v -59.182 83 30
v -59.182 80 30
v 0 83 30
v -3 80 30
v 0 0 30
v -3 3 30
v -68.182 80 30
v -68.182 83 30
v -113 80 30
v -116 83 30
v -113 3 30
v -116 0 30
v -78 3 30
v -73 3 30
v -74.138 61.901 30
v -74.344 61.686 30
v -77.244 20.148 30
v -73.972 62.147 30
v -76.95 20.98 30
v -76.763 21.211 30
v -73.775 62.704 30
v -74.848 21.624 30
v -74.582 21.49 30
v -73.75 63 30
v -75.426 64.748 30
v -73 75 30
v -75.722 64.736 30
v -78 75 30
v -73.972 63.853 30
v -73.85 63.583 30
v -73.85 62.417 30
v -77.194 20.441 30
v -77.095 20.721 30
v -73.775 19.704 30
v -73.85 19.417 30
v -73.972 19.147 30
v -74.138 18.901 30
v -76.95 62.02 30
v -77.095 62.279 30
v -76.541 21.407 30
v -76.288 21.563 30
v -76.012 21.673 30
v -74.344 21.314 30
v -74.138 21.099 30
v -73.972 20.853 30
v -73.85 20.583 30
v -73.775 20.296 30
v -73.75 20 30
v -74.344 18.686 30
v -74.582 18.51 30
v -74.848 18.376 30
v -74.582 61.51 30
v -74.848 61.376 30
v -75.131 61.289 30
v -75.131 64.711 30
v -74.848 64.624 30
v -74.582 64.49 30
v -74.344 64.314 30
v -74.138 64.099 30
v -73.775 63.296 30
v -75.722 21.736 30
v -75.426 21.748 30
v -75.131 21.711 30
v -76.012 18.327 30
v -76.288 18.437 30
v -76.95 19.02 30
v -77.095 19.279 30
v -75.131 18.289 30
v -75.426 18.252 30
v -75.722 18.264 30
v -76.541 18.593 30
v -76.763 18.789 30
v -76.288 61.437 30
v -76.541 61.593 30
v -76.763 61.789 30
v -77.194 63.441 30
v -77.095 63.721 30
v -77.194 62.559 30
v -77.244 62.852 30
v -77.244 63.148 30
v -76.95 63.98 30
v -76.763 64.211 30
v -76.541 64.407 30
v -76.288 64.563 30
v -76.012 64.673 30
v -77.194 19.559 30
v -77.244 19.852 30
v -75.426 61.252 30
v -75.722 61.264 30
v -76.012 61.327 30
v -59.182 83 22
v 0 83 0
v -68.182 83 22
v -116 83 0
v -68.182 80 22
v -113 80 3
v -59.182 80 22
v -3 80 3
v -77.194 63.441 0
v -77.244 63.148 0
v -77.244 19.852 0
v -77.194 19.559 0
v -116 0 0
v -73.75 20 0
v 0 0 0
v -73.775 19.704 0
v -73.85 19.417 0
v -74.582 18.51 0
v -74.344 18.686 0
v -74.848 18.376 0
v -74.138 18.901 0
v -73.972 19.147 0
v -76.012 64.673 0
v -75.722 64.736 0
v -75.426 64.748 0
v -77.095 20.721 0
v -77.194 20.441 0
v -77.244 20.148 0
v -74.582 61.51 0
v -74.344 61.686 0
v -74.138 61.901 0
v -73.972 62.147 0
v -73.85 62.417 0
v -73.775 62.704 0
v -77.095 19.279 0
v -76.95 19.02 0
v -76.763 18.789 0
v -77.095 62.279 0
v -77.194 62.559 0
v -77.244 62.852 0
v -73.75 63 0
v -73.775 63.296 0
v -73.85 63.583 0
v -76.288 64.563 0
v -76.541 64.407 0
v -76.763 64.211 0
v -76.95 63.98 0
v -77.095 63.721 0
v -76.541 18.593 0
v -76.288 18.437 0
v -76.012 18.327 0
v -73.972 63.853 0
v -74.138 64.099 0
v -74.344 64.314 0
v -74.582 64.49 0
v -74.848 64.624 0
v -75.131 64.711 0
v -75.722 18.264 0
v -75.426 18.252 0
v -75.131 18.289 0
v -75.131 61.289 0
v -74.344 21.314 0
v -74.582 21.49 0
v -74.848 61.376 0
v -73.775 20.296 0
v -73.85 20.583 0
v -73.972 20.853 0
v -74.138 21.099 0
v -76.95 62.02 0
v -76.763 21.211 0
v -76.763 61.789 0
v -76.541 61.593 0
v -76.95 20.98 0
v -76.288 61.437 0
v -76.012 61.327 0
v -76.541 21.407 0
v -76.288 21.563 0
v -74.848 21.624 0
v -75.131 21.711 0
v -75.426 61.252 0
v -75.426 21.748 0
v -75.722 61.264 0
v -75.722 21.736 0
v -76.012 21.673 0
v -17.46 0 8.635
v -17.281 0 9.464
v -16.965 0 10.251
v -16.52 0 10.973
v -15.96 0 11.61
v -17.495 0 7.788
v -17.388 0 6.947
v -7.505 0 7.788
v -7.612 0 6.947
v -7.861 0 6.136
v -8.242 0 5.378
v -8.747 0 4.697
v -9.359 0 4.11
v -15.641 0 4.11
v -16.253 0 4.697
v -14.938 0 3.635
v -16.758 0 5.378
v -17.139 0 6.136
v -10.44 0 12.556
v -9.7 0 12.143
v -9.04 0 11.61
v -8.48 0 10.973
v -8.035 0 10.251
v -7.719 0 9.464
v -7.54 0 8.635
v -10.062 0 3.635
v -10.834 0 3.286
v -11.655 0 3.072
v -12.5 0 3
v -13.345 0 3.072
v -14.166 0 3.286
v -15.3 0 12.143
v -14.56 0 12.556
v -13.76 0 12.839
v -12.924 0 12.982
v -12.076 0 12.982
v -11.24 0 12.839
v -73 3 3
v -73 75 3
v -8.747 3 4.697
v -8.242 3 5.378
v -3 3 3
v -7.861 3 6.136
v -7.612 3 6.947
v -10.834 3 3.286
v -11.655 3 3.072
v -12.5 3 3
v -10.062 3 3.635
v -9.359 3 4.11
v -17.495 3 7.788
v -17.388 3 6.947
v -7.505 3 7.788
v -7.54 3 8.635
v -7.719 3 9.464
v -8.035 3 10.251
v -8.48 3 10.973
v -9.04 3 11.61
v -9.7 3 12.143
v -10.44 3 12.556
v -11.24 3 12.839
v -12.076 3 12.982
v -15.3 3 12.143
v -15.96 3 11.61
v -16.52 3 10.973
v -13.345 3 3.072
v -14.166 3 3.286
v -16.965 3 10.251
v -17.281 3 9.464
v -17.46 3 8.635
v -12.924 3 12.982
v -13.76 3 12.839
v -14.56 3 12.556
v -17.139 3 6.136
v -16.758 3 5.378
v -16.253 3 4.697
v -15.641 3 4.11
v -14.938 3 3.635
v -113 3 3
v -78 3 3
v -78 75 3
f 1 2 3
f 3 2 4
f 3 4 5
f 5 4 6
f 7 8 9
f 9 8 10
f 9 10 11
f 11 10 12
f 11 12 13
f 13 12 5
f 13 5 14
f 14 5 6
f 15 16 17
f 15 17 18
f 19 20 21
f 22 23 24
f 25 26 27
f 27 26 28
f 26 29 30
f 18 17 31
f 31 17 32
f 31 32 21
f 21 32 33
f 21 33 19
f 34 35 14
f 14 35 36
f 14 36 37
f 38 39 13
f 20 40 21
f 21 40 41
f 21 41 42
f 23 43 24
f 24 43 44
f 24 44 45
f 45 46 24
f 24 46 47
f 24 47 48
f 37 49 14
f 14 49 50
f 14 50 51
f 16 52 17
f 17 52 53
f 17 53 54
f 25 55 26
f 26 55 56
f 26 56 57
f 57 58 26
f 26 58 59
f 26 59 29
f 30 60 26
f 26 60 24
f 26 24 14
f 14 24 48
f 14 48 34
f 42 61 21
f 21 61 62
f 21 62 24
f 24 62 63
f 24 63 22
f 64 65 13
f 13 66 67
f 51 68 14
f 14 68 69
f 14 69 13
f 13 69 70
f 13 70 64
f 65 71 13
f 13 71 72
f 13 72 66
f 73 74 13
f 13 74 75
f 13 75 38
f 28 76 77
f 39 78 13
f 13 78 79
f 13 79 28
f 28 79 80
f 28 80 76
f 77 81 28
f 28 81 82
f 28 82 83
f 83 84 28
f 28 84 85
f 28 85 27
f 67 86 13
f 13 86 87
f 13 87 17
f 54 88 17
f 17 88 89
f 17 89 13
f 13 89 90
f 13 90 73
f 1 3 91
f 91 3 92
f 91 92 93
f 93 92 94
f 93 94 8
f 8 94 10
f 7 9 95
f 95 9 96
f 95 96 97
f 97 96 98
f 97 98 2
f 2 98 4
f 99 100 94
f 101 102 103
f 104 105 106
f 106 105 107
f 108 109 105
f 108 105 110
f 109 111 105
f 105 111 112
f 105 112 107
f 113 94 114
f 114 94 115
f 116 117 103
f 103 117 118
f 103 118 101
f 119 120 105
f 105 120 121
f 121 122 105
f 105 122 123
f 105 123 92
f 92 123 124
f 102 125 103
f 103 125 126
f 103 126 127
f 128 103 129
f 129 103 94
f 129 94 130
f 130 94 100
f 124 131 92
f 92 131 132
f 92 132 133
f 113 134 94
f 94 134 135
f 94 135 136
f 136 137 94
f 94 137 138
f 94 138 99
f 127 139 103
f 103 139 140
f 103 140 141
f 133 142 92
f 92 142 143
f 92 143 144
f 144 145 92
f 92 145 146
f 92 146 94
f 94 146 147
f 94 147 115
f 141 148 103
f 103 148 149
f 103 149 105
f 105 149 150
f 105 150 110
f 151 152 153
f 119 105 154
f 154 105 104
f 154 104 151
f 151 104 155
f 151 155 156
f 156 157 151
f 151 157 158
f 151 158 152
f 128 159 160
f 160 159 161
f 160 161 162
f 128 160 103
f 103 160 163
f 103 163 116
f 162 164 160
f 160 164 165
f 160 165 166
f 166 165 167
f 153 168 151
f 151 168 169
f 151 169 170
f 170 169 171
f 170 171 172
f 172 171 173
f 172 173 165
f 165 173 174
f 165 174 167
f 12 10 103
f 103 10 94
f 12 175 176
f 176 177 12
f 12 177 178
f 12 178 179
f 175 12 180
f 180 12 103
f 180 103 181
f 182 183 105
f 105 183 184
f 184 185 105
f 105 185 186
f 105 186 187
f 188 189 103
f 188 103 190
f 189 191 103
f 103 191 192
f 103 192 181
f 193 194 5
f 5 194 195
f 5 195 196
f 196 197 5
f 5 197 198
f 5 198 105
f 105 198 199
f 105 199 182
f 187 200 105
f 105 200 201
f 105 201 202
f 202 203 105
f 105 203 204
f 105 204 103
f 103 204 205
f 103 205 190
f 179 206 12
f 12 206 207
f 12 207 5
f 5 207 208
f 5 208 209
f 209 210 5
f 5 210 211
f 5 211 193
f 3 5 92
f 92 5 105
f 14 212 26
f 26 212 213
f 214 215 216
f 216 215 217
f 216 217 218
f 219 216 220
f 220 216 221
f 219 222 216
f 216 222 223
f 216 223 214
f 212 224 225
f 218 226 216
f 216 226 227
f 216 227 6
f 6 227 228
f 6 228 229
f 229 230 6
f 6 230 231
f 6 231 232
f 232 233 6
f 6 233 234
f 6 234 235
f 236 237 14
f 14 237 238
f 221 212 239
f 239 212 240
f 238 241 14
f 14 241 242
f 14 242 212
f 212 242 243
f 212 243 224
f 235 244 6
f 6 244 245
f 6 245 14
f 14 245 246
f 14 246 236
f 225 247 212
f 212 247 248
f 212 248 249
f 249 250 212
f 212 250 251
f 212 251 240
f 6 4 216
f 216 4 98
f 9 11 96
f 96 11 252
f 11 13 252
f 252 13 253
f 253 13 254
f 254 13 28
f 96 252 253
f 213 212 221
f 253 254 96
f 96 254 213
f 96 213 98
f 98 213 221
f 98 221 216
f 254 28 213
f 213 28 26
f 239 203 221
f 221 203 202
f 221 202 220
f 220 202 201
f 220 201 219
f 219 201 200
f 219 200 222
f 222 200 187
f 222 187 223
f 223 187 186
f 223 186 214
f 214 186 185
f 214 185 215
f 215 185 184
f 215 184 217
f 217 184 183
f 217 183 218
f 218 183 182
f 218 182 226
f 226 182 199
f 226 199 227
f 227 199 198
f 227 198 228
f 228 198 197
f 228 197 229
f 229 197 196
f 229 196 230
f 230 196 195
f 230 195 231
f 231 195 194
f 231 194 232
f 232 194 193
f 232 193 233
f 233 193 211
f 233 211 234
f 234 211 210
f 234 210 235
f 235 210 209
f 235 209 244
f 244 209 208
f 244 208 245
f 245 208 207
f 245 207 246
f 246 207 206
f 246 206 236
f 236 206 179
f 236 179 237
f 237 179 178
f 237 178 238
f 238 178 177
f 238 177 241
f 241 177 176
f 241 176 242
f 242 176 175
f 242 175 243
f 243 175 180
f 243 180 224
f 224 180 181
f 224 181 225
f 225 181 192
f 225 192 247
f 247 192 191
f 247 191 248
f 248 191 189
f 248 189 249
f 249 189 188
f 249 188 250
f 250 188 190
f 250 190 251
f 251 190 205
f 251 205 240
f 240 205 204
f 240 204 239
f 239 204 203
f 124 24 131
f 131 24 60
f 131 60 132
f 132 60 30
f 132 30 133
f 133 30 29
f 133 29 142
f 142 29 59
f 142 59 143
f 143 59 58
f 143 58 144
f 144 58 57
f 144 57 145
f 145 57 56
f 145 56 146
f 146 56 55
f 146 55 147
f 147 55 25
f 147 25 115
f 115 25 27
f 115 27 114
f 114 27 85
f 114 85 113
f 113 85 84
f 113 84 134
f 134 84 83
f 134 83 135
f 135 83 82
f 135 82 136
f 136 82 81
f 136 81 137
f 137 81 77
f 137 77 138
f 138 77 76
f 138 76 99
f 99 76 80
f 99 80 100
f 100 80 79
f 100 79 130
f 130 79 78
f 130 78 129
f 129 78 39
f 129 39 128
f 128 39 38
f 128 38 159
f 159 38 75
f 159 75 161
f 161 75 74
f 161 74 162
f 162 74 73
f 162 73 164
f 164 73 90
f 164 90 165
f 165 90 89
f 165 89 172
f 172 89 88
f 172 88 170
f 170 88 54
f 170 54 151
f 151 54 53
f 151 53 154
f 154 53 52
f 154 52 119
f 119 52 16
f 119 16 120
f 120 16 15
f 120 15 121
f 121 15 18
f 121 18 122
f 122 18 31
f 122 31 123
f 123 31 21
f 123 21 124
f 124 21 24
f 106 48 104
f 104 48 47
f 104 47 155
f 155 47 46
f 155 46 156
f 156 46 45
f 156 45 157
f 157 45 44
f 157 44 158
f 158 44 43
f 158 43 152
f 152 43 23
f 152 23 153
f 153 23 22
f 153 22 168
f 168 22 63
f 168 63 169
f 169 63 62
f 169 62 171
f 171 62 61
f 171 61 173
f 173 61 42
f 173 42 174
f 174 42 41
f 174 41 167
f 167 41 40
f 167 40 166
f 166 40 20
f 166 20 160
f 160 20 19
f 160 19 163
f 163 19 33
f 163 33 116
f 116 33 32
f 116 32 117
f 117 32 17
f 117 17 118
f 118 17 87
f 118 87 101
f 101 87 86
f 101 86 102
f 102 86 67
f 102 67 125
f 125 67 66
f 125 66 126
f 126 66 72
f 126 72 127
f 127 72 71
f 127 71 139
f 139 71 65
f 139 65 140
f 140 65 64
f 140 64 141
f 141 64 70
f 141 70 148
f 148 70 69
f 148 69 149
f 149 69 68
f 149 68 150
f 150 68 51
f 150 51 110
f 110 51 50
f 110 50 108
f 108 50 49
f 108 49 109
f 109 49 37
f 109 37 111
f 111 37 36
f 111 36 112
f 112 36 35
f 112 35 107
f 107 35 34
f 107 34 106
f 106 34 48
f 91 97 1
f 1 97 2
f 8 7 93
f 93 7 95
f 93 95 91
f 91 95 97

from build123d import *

# Parameters (mm, degrees)
SKETCH1_W           = 116
SKETCH1_H           = 83
SKETCH1_W_2         = 70
SKETCH1_H_2         = 77
SKETCH1_W_3         = 35
BOSS_EXTRUDE1_DEPTH = 30
SKETCH2_W           = 70
SKETCH2_H           = 77
SKETCH2_W_2         = 35
BOSS_EXTRUDE2_DEPTH = 3
SKETCH3_W           = 27
SKETCH3_H           = 5
CUT_EXTRUDE1_DEPTH  = 5
SKETCH5_R           = 5
CUT_EXTRUDE3_DEPTH  = 10
SKETCH6_R           = 1.75
CUT_EXTRUDE4_DEPTH  = 30
SKETCH7_W           = 9
SKETCH7_H           = 8
CUT_EXTRUDE5_DEPTH  = 10


with BuildPart() as part:
    # Sketch1 → Boss-Extrude1 (new body)
    with BuildSketch(Plane.XY):
        with Locations((-58, 41.5)):
            Rectangle(SKETCH1_W, SKETCH1_H)
        with Locations((-38, 41.5)):
            Rectangle(SKETCH1_W_2, SKETCH1_H_2, mode=Mode.SUBTRACT)
        with Locations((-95.5, 41.5)):
            Rectangle(SKETCH1_W_3, SKETCH1_H_2, mode=Mode.SUBTRACT)
    extrude(amount=BOSS_EXTRUDE1_DEPTH)

    # Sketch2 → Boss-Extrude2 (add)
    with BuildSketch(Plane(origin=(0, 0, 0), x_dir=(-1, 0, 0), z_dir=(0, 0, -1))):
        with Locations((38, 41.5)):
            Rectangle(SKETCH2_W, SKETCH2_H)
        with Locations((95.5, 41.5)):
            Rectangle(SKETCH2_W_2, SKETCH2_H)
    extrude(amount=-BOSS_EXTRUDE2_DEPTH)

    # Sketch3 → Cut-Extrude1 (cut)
    with BuildSketch(Plane(origin=(-73, 0, 0), x_dir=(0, 0, -1), z_dir=(1, 0, 0))):
        with Locations((-16.5, 77.5)):
            Rectangle(SKETCH3_W, SKETCH3_H)
    extrude(amount=-CUT_EXTRUDE1_DEPTH, mode=Mode.SUBTRACT)

    # Sketch5 → Cut-Extrude3 (cut)
    with BuildSketch(Plane(origin=(0, 0, 0), x_dir=(-1, 0, 0), z_dir=(0, -1, 0))):
        with Locations((12.5, -8)):
            Circle(SKETCH5_R)
    extrude(amount=-CUT_EXTRUDE3_DEPTH, mode=Mode.SUBTRACT)

    # Sketch6 → Cut-Extrude4 (cut)
    with BuildSketch(Plane.XY.offset(30)):
        with Locations((-75.5, 63)):
            Circle(SKETCH6_R)
        with Locations((-75.5, 20)):
            Circle(SKETCH6_R)
    extrude(amount=-CUT_EXTRUDE4_DEPTH, mode=Mode.SUBTRACT)

    # Sketch7 → Cut-Extrude5 (cut)
    with BuildSketch(Plane(origin=(0, 83, 0), x_dir=(1, 0, 0), z_dir=(0, 1, 0))):
        with Locations((-63.682179336, -26)):
            Rectangle(SKETCH7_W, SKETCH7_H)
    extrude(amount=-CUT_EXTRUDE5_DEPTH, mode=Mode.SUBTRACT)


solid = part.part
